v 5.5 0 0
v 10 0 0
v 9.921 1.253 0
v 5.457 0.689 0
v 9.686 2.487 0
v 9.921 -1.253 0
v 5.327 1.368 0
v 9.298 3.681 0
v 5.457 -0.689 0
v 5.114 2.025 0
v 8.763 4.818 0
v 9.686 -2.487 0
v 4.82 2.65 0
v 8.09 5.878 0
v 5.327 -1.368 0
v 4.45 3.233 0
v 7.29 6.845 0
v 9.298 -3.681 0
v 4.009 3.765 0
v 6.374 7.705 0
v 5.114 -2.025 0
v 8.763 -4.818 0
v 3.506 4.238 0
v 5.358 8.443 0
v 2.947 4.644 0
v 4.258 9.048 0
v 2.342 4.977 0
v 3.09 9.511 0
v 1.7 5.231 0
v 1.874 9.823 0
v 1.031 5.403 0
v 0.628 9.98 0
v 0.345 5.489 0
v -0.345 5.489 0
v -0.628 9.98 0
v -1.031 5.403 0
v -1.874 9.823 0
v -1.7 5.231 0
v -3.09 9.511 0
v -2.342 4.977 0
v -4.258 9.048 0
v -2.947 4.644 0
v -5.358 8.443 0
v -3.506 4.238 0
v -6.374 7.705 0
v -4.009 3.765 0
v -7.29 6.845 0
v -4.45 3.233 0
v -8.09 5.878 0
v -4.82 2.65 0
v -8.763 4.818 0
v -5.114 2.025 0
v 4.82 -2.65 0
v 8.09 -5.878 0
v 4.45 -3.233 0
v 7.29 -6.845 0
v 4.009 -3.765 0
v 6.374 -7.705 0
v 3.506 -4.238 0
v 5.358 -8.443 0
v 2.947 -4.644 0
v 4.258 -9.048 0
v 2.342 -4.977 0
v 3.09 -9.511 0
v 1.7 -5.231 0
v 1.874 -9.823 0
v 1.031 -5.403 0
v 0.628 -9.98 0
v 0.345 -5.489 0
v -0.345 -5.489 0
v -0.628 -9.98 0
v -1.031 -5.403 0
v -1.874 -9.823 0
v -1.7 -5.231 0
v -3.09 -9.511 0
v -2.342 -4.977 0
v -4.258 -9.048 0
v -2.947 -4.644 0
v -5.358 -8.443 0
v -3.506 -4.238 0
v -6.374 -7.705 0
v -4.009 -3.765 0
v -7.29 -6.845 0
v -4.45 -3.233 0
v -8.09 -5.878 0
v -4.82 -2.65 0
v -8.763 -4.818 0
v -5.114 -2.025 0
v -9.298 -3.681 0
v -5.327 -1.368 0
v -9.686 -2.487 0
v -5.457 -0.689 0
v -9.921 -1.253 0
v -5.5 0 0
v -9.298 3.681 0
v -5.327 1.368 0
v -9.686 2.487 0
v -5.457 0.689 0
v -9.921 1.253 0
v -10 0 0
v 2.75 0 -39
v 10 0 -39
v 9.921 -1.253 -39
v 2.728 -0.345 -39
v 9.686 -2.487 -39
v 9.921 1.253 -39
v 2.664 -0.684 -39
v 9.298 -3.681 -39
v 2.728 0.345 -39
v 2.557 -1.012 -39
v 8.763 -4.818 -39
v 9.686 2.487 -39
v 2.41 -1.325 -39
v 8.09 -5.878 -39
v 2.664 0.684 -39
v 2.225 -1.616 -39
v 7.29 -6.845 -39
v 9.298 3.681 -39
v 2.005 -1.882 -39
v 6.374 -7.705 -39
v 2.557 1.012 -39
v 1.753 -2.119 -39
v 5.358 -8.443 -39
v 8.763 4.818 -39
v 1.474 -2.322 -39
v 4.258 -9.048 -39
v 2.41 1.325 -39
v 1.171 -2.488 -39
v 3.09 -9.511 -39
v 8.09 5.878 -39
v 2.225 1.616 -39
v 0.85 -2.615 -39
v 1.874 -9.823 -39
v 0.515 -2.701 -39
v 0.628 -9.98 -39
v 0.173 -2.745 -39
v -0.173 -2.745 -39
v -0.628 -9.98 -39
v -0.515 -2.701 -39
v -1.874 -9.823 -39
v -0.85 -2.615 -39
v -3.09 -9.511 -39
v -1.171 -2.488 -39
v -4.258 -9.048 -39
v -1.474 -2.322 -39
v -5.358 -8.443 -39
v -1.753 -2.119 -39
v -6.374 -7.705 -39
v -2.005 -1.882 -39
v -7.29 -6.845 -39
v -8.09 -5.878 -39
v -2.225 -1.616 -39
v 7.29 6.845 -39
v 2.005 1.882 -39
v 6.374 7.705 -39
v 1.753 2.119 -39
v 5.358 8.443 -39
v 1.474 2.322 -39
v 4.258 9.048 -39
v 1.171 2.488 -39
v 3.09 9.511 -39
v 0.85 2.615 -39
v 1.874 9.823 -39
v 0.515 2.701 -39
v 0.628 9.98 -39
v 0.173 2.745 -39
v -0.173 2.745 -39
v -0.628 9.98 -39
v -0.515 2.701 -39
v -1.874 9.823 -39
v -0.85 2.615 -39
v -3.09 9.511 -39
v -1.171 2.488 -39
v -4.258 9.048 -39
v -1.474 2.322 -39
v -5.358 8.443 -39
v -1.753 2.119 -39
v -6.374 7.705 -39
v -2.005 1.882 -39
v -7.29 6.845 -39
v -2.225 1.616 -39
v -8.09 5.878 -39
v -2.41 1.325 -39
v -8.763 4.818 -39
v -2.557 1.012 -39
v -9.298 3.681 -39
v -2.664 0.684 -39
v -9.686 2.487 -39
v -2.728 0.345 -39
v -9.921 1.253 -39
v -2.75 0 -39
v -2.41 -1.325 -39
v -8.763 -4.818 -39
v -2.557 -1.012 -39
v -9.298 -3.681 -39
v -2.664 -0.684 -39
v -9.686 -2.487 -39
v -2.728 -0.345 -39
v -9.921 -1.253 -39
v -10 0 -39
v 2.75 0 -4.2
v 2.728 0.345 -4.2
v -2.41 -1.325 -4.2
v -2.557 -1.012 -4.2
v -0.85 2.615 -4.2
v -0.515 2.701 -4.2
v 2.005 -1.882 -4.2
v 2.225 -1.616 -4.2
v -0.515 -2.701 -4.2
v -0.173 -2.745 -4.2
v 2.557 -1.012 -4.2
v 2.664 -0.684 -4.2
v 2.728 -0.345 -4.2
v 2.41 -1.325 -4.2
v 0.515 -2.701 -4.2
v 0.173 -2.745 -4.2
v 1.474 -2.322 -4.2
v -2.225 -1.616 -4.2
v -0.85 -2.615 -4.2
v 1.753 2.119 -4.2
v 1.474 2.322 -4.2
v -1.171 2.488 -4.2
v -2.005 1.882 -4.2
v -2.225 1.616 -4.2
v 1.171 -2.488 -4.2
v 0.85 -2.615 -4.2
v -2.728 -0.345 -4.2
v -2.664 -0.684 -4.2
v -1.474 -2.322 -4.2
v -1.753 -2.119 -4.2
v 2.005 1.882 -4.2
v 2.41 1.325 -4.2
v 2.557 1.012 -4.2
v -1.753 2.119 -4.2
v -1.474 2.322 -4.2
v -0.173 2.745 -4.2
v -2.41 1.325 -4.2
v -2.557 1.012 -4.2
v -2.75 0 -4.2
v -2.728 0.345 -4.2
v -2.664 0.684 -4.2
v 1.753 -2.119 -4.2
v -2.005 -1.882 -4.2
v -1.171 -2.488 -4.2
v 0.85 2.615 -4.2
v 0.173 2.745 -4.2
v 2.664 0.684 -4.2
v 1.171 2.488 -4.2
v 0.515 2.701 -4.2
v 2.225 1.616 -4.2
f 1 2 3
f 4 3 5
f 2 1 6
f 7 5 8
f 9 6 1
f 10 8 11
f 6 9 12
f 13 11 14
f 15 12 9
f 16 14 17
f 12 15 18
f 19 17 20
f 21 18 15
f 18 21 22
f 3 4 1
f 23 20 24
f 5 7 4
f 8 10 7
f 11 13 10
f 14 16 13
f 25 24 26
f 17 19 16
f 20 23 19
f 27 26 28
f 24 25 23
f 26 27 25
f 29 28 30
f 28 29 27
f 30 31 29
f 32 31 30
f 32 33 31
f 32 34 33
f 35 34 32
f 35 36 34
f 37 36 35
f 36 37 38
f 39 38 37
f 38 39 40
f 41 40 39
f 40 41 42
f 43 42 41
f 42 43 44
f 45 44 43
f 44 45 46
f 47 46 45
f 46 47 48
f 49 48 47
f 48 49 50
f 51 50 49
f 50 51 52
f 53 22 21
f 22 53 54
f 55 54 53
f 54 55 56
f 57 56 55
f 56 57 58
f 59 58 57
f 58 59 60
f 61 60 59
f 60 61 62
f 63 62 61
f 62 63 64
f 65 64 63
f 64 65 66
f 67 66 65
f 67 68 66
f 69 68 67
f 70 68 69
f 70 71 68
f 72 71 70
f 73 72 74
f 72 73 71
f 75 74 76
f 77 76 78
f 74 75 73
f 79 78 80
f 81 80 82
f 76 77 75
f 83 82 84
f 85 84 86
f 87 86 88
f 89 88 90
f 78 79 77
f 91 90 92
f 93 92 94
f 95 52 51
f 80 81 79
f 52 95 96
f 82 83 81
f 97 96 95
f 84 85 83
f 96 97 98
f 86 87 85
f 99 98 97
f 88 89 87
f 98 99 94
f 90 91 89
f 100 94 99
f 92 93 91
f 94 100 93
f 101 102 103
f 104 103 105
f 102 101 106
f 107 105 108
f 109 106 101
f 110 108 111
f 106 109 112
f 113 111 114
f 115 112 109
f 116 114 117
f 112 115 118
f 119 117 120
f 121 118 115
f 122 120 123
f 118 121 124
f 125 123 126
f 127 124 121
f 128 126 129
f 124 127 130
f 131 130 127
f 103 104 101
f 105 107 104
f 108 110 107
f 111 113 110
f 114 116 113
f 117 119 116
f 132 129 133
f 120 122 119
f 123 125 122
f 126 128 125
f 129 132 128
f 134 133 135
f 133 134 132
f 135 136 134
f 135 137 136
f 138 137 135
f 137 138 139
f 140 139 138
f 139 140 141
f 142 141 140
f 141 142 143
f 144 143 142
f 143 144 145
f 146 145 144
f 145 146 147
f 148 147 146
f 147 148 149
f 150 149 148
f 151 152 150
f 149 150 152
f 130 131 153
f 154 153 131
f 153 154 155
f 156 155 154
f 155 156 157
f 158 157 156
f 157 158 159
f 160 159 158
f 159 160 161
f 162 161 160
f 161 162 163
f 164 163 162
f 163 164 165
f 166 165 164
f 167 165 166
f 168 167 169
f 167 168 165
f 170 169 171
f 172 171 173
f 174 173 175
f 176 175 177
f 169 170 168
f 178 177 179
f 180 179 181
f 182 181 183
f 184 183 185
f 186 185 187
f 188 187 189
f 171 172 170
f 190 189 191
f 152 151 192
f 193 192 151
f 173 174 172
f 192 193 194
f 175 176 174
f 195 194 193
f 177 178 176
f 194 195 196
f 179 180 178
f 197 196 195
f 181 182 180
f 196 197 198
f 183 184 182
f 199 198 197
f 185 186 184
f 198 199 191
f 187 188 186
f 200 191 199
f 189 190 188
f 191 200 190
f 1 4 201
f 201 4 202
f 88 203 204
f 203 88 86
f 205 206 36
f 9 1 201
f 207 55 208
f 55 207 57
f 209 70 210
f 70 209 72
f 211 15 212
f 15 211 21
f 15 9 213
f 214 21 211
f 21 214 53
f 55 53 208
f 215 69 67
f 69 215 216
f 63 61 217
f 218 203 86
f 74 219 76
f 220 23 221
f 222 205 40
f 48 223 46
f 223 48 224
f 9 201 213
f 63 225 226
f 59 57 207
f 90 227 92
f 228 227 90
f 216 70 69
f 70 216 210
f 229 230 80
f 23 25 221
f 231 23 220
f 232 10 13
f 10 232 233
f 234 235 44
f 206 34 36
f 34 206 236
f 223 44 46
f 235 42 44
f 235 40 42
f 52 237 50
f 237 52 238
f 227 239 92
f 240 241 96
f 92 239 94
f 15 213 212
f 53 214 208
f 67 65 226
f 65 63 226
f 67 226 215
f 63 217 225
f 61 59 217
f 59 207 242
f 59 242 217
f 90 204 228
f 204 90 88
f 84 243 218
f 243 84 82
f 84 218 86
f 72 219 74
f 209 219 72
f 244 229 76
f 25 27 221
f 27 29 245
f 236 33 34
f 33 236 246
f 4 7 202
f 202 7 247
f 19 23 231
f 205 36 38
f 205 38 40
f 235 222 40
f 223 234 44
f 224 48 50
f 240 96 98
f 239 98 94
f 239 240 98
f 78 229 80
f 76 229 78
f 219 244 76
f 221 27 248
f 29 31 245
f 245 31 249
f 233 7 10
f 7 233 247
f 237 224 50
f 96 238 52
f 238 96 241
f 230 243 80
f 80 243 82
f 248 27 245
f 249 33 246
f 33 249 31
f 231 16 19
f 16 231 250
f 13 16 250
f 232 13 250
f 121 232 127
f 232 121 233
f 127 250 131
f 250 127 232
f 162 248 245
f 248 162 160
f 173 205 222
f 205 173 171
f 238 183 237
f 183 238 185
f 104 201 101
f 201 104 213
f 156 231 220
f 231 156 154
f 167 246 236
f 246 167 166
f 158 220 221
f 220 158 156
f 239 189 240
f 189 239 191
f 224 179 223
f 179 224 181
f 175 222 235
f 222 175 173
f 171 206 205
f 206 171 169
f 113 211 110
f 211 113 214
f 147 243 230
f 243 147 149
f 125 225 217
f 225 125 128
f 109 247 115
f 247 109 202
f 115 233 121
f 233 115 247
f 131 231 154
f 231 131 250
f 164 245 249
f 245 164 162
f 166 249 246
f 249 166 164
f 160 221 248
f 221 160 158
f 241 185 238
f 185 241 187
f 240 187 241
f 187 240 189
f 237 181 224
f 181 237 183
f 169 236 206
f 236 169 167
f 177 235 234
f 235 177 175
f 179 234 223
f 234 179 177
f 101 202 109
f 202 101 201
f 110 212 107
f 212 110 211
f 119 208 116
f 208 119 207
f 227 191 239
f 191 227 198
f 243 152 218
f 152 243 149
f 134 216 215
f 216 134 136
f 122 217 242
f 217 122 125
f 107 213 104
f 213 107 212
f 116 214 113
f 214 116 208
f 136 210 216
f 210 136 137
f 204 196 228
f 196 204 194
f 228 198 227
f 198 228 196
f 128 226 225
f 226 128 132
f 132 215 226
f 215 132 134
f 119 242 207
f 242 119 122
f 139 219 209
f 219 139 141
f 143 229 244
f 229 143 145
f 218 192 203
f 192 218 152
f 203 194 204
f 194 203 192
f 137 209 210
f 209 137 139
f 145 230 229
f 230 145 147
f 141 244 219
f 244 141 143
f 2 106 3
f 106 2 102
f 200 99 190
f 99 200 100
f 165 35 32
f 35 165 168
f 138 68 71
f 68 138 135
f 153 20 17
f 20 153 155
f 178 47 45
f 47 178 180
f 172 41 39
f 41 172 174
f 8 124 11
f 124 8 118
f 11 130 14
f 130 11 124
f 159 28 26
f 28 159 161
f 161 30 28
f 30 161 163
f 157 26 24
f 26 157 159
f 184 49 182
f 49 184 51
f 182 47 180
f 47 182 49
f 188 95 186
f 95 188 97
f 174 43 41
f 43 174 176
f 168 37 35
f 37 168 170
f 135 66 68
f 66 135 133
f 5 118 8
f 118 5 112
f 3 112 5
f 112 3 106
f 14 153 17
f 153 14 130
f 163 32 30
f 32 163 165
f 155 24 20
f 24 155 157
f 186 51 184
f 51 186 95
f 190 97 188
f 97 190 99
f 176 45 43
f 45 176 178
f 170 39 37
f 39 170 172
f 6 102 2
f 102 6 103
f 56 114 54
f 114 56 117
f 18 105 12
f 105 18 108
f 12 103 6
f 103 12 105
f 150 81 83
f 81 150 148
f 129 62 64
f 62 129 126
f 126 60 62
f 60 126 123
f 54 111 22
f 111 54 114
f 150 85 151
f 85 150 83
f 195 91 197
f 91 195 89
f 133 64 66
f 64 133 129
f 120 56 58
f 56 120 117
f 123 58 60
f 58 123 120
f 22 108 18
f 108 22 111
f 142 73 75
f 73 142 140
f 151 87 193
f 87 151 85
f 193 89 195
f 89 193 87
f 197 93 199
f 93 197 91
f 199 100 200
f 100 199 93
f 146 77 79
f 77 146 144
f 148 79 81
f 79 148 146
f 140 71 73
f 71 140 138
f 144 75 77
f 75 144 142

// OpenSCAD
$fn = 50;


difference() {
	union() {
		translate(v = [0, 0, -39.0000000000]) {
			cylinder(h = 39, r = 10.0000000000);
		}
		cylinder(h = 0, r = 13.0000000000);
	}
	union() {
		translate(v = [0, 0, 0]) {
			rotate(a = [0, 0, 0]) {
				difference() {
					union() {
						#translate(v = [0, 0, -39.0000000000]) {
							cylinder(h = 39, r = 2.2500000000);
						}
						#translate(v = [0, 0, -4.2000000000]) {
							cylinder(h = 4.2000000000, r = 10.0000000000, r1 = 2.7500000000, r2 = 5.5000000000);
						}
						#translate(v = [0, 0, -39.0000000000]) {
							cylinder(h = 39, r = 2.7500000000);
						}
						#translate(v = [0, 0, -39.0000000000]) {
							cylinder(h = 39, r = 2.2500000000);
						}
					}
					union();
				}
			}
		}
	}
}
